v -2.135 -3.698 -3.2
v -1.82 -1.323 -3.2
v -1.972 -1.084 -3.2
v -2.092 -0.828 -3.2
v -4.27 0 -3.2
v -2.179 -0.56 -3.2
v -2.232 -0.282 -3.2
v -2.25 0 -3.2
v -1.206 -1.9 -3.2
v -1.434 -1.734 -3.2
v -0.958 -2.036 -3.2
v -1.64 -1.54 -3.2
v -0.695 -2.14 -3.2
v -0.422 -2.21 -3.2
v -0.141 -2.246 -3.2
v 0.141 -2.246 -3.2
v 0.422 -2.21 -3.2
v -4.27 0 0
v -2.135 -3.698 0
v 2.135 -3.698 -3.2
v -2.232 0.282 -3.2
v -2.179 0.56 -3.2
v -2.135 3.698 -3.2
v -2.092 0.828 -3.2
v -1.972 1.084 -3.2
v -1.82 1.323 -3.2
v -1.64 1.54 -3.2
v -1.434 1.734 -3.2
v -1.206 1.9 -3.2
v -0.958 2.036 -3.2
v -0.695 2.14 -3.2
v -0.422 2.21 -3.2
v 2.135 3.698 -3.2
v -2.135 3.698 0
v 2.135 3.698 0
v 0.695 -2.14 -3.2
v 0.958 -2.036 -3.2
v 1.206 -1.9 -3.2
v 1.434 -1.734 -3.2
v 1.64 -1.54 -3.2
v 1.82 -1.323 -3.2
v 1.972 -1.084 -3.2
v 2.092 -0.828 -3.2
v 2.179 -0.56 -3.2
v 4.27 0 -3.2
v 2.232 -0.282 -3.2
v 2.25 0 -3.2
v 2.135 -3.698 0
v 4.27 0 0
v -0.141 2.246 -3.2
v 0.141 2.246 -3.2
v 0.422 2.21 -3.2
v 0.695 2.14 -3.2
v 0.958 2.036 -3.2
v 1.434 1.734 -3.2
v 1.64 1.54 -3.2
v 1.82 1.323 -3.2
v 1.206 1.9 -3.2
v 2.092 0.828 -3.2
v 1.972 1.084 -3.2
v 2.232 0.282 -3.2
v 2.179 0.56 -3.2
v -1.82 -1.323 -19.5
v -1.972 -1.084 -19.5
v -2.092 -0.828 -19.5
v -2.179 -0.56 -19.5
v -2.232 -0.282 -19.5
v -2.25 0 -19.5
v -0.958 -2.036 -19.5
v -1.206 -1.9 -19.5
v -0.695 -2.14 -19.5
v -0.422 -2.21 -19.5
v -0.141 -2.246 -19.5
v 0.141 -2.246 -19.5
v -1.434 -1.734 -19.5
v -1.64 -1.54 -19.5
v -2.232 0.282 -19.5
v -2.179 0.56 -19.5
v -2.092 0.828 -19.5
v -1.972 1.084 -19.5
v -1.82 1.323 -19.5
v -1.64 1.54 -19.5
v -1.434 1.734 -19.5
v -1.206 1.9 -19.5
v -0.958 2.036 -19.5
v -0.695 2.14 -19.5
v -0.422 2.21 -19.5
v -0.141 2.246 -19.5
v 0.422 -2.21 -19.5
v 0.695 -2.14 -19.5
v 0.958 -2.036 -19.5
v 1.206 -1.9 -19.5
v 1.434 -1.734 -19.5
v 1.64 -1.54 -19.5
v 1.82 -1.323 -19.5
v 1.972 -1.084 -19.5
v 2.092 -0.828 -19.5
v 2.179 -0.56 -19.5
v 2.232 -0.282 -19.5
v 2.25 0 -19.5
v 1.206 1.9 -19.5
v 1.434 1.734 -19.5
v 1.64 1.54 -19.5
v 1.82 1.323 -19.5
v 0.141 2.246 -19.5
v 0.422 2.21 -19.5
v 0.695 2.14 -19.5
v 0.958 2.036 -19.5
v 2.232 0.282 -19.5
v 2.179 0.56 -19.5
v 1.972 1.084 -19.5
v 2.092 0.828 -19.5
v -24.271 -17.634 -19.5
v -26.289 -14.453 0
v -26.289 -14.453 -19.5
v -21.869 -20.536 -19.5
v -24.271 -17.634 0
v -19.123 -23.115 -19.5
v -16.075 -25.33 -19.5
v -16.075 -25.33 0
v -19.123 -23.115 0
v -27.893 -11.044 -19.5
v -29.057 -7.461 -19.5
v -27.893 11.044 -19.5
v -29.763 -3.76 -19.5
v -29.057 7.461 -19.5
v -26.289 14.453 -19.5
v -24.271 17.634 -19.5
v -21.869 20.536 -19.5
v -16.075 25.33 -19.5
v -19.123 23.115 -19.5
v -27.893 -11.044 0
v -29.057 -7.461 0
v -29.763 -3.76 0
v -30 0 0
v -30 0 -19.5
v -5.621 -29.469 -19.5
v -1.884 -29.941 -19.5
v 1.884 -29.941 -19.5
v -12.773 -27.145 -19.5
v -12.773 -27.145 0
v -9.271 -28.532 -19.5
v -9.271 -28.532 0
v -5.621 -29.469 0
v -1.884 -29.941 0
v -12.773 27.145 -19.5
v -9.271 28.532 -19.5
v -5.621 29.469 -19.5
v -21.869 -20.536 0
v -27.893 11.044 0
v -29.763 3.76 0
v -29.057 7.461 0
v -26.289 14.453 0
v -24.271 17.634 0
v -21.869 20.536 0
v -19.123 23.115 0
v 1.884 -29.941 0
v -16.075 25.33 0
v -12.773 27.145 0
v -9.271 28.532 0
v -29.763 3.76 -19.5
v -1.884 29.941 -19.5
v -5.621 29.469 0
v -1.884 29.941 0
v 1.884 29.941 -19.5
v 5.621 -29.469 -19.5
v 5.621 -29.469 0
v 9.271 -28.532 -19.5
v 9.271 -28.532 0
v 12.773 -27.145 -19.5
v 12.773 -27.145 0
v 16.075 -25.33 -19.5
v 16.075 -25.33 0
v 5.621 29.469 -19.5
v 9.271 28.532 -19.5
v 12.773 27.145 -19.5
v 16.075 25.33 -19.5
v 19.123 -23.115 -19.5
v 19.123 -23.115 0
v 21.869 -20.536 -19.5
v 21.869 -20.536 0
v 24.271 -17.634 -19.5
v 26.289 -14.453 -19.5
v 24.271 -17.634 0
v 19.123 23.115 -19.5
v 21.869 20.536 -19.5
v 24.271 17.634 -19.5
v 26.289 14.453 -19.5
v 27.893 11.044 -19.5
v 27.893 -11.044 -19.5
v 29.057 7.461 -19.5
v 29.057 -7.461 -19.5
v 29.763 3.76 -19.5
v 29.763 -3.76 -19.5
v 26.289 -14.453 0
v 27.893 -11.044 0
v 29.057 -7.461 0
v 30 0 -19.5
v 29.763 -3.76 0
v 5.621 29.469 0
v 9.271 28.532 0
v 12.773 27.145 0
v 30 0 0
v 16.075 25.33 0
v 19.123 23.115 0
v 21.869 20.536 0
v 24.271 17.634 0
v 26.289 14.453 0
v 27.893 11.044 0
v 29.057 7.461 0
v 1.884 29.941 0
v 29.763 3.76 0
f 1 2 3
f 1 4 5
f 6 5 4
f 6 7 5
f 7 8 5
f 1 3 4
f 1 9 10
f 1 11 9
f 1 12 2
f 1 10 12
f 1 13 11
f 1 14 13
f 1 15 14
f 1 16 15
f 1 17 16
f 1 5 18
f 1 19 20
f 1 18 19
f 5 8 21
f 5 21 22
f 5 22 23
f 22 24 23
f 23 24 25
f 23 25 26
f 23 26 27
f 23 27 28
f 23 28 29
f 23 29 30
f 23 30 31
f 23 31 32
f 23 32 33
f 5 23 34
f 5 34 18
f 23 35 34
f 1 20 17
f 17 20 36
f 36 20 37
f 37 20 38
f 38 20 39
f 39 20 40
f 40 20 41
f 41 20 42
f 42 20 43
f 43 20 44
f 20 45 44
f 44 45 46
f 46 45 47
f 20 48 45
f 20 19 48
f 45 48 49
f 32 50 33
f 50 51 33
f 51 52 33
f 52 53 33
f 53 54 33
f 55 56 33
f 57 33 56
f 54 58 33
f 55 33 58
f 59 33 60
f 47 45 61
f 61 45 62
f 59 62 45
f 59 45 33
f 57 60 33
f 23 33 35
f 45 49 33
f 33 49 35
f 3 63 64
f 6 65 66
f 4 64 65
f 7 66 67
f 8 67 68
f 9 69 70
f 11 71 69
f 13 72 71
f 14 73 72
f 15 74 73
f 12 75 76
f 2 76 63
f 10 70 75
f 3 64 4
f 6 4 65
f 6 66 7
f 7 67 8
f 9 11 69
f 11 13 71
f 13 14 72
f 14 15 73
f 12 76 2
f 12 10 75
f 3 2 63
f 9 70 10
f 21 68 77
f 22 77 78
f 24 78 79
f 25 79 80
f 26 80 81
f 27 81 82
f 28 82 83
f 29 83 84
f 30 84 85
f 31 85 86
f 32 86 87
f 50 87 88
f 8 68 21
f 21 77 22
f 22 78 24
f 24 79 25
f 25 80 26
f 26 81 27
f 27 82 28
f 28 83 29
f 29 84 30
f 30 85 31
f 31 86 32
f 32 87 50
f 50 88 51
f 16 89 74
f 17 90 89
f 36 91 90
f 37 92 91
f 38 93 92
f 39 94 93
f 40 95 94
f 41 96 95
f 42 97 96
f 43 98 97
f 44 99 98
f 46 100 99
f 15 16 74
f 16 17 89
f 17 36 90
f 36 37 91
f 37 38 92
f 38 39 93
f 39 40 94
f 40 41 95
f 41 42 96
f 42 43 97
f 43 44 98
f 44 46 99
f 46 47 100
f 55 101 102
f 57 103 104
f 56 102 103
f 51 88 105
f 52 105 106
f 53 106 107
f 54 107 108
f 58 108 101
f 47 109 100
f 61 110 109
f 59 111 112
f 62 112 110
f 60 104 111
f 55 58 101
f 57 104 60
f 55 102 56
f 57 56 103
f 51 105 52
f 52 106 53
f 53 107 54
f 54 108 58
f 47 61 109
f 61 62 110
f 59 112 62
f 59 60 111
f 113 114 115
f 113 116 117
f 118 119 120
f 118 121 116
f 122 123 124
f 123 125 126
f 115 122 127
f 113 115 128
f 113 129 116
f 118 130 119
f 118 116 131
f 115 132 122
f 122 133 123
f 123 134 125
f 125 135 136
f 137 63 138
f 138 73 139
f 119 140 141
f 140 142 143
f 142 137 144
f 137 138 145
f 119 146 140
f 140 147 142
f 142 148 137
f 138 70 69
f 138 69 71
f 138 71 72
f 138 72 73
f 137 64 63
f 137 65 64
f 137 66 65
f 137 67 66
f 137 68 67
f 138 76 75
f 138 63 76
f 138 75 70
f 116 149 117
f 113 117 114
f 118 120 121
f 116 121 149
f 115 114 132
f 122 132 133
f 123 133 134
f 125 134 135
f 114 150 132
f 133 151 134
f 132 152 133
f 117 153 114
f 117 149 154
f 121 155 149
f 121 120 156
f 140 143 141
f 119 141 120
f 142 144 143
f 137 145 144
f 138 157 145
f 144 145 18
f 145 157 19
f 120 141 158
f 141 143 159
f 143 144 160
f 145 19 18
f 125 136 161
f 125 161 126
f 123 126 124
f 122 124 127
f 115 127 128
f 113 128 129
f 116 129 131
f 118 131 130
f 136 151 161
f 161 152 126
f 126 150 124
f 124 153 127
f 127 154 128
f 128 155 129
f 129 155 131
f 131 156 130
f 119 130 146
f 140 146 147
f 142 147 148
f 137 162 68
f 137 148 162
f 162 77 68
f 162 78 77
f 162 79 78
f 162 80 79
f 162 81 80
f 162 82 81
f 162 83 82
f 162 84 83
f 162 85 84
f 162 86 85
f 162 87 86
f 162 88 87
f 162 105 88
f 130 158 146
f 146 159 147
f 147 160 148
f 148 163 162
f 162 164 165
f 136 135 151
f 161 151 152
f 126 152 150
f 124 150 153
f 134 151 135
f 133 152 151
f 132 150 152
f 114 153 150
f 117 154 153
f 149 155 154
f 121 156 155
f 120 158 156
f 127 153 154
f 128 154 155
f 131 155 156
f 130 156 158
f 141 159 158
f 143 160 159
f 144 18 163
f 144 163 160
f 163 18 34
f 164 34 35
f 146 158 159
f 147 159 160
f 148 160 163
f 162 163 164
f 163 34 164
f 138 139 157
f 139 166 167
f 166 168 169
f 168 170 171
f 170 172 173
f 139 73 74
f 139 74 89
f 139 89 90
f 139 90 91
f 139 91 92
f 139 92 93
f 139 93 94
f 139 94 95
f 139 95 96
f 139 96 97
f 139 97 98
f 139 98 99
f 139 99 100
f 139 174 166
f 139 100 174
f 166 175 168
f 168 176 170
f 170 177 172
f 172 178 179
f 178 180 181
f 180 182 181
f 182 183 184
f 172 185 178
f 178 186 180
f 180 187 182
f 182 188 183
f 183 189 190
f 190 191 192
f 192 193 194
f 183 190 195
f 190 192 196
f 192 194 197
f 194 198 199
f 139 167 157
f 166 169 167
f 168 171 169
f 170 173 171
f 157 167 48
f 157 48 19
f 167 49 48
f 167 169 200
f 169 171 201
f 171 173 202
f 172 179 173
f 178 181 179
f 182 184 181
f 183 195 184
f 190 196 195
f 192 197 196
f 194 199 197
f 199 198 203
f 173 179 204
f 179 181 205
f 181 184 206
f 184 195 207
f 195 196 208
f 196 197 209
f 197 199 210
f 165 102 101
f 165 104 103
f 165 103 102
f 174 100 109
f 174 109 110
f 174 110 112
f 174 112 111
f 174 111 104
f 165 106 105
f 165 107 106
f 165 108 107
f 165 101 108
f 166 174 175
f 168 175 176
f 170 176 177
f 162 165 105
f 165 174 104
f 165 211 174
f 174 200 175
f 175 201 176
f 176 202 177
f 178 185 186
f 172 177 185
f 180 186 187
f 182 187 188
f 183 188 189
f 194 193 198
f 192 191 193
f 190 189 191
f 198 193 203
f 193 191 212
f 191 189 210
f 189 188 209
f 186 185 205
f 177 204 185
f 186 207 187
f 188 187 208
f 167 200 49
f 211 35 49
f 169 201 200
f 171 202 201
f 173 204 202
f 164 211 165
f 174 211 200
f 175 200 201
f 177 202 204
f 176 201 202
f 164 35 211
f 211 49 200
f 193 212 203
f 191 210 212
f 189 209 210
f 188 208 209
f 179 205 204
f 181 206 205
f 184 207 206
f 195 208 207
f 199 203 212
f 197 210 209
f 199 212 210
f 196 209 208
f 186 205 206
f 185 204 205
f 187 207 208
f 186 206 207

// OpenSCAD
$fn = 50;

difference() {
	union() {
		translate(v = [0, 0, -19.5]) {
			cylinder(h = 19.5, r = 30.0);
		}
	}
	union() {
		translate(v = [0, 0, 0]) {
			rotate(a = [0, 0, 0]) {
				difference() {
					union() {
						translate(v = [0, 0, -3.2]) {
							linear_extrude(height = 3.2) {
								polygon(points = [[4.2698, 0.0], [2.1349000000000005, 3.697755269078796], [-2.134899999999999, 3.6977552690787965], [-4.2698, 5.228996902999369e-16], [-2.134900000000002, -3.6977552690787956], [2.1348999999999974, -3.697755269078798]]);
							}
						}
					}
					union();
				}
			}
		}
		#translate(v = [0, 0, -100.0]) {
			cylinder(h = 200, r = 2.25);
		}
	}
}
